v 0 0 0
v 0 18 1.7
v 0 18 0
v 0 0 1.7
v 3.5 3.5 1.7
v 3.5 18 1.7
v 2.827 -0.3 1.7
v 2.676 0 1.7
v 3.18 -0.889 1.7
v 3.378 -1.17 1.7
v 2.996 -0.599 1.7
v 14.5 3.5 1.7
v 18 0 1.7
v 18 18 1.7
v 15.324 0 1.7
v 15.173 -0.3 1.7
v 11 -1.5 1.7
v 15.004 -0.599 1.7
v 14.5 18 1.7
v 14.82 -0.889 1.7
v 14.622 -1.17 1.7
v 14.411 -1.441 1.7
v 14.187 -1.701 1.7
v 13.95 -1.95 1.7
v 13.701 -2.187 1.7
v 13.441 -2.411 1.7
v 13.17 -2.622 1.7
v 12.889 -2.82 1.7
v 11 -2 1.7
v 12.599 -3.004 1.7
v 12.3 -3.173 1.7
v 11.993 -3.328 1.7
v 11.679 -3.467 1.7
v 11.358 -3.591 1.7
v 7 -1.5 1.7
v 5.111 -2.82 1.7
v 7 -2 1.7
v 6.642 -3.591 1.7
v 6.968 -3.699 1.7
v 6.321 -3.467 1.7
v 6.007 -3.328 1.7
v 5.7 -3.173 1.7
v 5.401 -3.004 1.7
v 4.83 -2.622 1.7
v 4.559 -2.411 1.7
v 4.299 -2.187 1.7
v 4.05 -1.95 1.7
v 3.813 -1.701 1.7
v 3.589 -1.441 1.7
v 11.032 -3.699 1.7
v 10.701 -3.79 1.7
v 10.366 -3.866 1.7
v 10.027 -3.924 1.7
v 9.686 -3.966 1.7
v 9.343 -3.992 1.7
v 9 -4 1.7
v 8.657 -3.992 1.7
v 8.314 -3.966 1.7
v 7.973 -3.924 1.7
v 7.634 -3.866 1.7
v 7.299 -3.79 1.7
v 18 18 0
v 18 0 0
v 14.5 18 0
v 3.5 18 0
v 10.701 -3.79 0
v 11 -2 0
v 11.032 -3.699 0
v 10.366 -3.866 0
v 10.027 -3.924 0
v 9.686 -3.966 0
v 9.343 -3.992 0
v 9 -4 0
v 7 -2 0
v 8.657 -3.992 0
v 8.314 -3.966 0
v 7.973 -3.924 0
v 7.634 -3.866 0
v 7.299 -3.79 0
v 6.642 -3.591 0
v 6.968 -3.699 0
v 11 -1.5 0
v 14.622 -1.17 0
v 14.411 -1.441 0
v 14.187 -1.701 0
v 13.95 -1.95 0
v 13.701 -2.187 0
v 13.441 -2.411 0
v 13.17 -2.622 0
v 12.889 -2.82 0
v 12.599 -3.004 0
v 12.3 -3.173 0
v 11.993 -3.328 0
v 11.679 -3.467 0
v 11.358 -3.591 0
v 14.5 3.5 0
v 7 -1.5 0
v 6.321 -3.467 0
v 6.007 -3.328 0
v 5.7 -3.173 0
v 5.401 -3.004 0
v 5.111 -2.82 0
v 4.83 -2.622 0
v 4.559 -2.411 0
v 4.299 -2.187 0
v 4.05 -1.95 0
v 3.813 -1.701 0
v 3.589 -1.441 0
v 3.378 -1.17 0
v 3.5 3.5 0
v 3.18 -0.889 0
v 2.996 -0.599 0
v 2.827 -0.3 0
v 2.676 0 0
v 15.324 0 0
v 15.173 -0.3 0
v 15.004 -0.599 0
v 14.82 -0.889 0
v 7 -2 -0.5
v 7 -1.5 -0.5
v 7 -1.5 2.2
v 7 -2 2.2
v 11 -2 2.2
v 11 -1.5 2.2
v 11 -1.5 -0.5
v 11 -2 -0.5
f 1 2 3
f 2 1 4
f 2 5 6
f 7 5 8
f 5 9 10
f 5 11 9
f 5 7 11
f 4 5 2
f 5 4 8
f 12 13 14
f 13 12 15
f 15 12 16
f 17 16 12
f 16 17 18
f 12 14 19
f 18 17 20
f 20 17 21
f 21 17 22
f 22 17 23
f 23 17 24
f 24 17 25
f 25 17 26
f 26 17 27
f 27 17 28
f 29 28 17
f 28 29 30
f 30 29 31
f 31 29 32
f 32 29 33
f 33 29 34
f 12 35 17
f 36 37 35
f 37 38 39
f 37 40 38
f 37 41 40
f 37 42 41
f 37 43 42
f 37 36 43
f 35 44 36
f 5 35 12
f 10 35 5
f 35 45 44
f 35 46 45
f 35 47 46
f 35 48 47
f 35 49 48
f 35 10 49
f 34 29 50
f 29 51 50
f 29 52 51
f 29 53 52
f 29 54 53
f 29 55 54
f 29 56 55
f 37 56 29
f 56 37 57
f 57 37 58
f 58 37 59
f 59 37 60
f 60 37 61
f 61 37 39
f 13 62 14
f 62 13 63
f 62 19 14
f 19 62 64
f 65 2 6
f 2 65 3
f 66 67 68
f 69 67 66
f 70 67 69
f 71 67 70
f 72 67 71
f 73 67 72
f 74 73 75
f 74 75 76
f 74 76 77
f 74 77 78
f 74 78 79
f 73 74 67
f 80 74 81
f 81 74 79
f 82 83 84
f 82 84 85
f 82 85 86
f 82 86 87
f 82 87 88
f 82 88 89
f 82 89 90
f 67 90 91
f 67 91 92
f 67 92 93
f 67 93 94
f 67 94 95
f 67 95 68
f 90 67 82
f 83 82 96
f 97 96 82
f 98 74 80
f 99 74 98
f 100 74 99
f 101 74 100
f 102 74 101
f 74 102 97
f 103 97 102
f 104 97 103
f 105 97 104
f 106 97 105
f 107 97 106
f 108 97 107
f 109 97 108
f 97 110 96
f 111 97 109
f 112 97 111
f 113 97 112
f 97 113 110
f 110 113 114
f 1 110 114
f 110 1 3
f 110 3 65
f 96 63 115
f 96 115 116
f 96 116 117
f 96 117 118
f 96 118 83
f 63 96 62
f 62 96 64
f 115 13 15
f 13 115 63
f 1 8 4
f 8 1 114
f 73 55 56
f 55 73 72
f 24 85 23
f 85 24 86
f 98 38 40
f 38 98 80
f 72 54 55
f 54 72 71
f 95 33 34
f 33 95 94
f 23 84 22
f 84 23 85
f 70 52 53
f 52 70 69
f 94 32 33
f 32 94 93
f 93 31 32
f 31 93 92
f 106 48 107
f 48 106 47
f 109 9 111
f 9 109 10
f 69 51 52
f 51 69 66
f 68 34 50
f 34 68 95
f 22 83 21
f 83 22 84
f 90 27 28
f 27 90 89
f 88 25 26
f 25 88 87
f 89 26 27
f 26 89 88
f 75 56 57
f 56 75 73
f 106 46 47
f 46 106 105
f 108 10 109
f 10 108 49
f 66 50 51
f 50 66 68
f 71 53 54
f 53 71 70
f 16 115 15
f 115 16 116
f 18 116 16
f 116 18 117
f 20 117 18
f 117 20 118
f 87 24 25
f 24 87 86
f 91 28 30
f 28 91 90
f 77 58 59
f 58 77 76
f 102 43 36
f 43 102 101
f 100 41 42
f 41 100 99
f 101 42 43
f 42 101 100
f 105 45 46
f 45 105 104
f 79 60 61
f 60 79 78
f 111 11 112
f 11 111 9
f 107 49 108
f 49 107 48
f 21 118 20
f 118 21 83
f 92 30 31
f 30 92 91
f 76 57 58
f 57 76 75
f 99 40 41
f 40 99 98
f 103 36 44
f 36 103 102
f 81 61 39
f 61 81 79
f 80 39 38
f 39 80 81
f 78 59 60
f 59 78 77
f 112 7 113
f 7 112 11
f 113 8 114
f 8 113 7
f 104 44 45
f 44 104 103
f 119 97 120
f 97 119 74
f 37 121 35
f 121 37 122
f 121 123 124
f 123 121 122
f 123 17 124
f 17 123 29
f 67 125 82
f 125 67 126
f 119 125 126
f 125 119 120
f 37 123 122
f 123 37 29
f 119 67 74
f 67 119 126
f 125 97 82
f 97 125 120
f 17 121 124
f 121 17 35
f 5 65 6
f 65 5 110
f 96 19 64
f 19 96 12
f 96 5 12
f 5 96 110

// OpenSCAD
inner = 11;
outer = 18;
h = 1.7;

$fn = 128;

difference() {
    union() {
        cube([outer, outer, h], center=false);
        
        translate([outer / 2, 3, 0])
        cylinder(h=1.7, r=7, center=false);

        translate([(outer - 4) / 2, -2, -0.5])
        cube([4, 0.5, h+1]);
    }

    diff = (outer - inner) / 2;
    translate([diff, diff, -1])
    cube([inner, 100, h+2]);
}
